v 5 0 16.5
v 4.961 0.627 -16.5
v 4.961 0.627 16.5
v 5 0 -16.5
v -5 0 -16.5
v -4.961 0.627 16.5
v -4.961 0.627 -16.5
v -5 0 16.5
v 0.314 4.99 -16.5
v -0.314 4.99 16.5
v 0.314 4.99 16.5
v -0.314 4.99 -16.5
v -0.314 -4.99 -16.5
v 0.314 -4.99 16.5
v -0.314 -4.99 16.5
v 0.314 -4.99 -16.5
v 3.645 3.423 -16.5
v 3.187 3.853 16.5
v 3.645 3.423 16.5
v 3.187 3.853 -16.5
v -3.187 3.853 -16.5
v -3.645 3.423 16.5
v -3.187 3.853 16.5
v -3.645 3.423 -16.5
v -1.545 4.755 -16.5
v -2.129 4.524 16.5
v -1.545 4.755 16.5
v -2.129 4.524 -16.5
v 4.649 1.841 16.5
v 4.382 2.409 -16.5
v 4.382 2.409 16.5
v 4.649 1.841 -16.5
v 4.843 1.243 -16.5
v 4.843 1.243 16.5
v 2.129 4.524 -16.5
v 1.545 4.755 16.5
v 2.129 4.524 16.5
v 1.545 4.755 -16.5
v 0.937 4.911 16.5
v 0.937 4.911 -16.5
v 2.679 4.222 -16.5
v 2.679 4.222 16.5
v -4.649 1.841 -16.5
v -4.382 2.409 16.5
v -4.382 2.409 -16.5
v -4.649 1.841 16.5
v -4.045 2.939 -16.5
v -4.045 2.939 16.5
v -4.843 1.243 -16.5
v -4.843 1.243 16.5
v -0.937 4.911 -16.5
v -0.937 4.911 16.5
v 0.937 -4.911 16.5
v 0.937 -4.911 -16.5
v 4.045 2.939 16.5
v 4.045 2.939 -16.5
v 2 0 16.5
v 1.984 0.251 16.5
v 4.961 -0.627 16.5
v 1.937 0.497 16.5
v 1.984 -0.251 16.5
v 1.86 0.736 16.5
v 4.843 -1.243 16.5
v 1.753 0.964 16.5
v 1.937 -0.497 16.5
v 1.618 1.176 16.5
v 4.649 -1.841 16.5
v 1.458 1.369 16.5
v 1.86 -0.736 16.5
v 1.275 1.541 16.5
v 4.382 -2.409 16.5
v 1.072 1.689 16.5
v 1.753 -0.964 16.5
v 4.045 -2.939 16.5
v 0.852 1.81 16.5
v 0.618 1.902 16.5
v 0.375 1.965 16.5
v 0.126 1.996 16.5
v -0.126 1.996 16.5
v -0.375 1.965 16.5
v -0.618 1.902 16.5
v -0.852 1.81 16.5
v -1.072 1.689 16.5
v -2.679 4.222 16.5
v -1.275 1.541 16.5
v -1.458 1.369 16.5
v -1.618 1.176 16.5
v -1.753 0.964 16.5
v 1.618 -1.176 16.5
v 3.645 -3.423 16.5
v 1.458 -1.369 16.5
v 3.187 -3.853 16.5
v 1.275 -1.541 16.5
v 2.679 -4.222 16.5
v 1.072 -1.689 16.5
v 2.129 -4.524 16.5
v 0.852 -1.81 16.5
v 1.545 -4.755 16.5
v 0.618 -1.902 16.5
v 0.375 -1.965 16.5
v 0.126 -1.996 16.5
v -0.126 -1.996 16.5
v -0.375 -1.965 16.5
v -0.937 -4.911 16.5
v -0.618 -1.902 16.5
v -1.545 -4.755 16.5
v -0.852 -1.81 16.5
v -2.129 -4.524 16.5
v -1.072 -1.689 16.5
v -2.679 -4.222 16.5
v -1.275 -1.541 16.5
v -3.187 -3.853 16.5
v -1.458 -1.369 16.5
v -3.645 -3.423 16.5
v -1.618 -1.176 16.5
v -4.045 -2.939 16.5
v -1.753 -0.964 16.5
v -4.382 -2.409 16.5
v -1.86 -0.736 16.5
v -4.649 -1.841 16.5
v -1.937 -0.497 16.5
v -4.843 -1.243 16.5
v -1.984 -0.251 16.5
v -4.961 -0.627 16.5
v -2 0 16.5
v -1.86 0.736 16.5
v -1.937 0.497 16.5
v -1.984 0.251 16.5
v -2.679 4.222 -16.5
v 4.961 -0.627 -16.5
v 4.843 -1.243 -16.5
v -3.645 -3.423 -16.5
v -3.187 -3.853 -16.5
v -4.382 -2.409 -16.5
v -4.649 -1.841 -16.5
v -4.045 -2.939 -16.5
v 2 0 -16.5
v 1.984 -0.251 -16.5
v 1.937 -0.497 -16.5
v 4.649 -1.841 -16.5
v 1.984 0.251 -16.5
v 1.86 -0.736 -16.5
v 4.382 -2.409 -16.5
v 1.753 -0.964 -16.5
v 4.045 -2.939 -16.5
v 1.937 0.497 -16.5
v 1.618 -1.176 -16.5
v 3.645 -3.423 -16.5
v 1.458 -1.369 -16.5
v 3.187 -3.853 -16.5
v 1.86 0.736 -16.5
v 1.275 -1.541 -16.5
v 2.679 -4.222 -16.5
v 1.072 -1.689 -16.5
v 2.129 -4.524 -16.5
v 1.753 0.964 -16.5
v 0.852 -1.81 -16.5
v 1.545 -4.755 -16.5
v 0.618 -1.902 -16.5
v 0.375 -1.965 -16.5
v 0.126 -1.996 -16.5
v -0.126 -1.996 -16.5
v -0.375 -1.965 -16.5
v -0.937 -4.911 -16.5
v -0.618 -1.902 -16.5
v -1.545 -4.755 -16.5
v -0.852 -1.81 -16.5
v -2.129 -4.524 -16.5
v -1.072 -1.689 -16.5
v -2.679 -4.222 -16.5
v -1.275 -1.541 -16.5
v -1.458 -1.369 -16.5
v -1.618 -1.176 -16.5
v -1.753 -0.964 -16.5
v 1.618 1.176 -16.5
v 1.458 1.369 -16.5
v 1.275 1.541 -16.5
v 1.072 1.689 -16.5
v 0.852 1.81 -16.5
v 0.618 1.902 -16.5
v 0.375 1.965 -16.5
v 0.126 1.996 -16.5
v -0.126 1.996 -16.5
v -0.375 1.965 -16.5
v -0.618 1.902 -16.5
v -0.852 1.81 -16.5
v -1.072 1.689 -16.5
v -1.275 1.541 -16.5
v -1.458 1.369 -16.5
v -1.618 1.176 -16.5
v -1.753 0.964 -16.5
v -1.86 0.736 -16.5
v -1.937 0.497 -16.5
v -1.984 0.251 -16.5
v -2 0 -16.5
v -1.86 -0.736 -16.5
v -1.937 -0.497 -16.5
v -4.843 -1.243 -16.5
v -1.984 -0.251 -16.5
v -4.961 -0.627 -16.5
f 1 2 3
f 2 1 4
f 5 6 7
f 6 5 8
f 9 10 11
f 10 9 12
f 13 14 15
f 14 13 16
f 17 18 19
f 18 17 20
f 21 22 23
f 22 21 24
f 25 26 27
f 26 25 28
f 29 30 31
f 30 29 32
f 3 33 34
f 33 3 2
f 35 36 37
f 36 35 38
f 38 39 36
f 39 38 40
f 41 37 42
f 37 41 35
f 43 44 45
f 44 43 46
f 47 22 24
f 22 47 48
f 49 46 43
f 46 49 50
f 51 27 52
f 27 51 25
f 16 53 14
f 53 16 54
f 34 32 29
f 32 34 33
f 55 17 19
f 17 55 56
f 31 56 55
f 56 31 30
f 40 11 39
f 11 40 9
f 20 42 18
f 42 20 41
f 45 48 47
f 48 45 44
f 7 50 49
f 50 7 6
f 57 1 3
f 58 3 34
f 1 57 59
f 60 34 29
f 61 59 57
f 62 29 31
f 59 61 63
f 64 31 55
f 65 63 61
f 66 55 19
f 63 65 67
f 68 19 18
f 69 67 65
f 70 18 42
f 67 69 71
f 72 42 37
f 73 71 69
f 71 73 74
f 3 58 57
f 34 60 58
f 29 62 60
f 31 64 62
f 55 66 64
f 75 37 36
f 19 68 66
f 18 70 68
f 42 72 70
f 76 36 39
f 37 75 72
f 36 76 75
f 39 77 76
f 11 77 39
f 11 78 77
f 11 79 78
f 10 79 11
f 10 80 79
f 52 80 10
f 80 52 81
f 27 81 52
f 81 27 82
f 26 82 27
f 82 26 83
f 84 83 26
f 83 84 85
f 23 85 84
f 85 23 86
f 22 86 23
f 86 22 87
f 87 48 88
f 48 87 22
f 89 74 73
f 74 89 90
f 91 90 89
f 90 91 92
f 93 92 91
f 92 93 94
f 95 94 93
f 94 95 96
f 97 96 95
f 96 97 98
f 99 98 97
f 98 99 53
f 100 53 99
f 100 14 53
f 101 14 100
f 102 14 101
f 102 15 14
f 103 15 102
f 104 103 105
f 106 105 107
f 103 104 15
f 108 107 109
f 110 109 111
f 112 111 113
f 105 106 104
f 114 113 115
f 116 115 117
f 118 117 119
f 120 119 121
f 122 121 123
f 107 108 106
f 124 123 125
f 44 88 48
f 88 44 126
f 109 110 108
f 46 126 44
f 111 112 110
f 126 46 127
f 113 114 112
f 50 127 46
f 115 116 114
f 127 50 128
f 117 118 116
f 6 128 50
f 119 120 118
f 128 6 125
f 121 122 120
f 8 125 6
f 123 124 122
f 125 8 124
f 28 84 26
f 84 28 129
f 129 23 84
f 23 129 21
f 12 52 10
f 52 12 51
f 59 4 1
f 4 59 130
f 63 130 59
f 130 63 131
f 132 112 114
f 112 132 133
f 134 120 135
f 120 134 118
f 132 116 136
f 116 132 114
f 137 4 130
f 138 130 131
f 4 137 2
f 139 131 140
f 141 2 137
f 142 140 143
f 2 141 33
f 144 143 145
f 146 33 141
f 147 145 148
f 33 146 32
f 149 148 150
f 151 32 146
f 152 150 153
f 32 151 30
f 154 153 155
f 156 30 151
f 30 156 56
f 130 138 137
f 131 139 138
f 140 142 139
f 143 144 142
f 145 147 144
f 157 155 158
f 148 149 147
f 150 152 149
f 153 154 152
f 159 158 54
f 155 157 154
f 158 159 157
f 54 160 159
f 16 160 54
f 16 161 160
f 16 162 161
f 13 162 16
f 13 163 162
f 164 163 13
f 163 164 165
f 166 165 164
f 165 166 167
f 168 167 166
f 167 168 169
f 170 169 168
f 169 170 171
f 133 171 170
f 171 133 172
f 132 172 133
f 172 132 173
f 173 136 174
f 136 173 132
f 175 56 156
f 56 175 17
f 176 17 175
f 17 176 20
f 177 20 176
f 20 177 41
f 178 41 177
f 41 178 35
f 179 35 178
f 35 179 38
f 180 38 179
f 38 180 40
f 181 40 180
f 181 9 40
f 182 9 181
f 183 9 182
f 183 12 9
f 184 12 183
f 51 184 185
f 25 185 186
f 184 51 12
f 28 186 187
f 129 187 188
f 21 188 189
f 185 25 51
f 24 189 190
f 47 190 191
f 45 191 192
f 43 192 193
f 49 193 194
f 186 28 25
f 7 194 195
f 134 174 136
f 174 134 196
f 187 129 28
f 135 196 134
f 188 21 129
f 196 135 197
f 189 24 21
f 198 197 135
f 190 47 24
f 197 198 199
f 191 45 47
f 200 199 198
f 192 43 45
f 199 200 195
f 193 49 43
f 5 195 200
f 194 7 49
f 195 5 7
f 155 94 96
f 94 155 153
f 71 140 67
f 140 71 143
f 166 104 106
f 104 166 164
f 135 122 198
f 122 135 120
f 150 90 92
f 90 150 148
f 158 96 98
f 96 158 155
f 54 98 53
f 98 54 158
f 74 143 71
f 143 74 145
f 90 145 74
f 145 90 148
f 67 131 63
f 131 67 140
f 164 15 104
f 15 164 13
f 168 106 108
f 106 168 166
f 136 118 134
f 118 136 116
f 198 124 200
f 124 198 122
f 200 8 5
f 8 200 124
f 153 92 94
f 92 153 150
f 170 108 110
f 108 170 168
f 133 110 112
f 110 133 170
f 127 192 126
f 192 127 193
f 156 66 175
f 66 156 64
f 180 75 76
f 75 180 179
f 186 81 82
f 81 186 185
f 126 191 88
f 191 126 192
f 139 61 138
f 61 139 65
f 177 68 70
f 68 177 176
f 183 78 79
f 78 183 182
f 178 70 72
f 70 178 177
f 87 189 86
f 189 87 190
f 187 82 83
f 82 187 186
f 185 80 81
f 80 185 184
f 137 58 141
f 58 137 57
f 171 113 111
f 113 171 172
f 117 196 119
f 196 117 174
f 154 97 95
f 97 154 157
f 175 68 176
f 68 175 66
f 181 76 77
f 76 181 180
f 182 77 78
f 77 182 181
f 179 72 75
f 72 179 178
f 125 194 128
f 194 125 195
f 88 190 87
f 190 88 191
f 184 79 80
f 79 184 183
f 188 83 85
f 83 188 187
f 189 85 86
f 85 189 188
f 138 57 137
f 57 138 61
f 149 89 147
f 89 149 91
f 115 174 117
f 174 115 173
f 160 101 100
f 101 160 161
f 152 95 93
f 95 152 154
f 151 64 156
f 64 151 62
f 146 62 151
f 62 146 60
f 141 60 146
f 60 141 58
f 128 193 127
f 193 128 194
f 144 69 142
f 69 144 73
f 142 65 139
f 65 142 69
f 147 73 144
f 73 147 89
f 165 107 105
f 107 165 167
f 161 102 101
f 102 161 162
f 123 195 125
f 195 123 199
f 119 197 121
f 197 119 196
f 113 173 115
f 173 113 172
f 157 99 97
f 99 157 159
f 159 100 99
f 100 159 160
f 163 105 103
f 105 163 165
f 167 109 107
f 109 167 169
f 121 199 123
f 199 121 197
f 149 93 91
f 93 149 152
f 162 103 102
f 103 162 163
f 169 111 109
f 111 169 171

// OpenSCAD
$fn = 50;


difference() {
	union() {
		translate(v = [0, 0, -16.5000000000]) {
			cylinder(h = 33, r = 5.0000000000);
		}
	}
	union() {
		translate(v = [0, 0, -100.0000000000]) {
			cylinder(h = 200, r = 2);
		}
	}
}
